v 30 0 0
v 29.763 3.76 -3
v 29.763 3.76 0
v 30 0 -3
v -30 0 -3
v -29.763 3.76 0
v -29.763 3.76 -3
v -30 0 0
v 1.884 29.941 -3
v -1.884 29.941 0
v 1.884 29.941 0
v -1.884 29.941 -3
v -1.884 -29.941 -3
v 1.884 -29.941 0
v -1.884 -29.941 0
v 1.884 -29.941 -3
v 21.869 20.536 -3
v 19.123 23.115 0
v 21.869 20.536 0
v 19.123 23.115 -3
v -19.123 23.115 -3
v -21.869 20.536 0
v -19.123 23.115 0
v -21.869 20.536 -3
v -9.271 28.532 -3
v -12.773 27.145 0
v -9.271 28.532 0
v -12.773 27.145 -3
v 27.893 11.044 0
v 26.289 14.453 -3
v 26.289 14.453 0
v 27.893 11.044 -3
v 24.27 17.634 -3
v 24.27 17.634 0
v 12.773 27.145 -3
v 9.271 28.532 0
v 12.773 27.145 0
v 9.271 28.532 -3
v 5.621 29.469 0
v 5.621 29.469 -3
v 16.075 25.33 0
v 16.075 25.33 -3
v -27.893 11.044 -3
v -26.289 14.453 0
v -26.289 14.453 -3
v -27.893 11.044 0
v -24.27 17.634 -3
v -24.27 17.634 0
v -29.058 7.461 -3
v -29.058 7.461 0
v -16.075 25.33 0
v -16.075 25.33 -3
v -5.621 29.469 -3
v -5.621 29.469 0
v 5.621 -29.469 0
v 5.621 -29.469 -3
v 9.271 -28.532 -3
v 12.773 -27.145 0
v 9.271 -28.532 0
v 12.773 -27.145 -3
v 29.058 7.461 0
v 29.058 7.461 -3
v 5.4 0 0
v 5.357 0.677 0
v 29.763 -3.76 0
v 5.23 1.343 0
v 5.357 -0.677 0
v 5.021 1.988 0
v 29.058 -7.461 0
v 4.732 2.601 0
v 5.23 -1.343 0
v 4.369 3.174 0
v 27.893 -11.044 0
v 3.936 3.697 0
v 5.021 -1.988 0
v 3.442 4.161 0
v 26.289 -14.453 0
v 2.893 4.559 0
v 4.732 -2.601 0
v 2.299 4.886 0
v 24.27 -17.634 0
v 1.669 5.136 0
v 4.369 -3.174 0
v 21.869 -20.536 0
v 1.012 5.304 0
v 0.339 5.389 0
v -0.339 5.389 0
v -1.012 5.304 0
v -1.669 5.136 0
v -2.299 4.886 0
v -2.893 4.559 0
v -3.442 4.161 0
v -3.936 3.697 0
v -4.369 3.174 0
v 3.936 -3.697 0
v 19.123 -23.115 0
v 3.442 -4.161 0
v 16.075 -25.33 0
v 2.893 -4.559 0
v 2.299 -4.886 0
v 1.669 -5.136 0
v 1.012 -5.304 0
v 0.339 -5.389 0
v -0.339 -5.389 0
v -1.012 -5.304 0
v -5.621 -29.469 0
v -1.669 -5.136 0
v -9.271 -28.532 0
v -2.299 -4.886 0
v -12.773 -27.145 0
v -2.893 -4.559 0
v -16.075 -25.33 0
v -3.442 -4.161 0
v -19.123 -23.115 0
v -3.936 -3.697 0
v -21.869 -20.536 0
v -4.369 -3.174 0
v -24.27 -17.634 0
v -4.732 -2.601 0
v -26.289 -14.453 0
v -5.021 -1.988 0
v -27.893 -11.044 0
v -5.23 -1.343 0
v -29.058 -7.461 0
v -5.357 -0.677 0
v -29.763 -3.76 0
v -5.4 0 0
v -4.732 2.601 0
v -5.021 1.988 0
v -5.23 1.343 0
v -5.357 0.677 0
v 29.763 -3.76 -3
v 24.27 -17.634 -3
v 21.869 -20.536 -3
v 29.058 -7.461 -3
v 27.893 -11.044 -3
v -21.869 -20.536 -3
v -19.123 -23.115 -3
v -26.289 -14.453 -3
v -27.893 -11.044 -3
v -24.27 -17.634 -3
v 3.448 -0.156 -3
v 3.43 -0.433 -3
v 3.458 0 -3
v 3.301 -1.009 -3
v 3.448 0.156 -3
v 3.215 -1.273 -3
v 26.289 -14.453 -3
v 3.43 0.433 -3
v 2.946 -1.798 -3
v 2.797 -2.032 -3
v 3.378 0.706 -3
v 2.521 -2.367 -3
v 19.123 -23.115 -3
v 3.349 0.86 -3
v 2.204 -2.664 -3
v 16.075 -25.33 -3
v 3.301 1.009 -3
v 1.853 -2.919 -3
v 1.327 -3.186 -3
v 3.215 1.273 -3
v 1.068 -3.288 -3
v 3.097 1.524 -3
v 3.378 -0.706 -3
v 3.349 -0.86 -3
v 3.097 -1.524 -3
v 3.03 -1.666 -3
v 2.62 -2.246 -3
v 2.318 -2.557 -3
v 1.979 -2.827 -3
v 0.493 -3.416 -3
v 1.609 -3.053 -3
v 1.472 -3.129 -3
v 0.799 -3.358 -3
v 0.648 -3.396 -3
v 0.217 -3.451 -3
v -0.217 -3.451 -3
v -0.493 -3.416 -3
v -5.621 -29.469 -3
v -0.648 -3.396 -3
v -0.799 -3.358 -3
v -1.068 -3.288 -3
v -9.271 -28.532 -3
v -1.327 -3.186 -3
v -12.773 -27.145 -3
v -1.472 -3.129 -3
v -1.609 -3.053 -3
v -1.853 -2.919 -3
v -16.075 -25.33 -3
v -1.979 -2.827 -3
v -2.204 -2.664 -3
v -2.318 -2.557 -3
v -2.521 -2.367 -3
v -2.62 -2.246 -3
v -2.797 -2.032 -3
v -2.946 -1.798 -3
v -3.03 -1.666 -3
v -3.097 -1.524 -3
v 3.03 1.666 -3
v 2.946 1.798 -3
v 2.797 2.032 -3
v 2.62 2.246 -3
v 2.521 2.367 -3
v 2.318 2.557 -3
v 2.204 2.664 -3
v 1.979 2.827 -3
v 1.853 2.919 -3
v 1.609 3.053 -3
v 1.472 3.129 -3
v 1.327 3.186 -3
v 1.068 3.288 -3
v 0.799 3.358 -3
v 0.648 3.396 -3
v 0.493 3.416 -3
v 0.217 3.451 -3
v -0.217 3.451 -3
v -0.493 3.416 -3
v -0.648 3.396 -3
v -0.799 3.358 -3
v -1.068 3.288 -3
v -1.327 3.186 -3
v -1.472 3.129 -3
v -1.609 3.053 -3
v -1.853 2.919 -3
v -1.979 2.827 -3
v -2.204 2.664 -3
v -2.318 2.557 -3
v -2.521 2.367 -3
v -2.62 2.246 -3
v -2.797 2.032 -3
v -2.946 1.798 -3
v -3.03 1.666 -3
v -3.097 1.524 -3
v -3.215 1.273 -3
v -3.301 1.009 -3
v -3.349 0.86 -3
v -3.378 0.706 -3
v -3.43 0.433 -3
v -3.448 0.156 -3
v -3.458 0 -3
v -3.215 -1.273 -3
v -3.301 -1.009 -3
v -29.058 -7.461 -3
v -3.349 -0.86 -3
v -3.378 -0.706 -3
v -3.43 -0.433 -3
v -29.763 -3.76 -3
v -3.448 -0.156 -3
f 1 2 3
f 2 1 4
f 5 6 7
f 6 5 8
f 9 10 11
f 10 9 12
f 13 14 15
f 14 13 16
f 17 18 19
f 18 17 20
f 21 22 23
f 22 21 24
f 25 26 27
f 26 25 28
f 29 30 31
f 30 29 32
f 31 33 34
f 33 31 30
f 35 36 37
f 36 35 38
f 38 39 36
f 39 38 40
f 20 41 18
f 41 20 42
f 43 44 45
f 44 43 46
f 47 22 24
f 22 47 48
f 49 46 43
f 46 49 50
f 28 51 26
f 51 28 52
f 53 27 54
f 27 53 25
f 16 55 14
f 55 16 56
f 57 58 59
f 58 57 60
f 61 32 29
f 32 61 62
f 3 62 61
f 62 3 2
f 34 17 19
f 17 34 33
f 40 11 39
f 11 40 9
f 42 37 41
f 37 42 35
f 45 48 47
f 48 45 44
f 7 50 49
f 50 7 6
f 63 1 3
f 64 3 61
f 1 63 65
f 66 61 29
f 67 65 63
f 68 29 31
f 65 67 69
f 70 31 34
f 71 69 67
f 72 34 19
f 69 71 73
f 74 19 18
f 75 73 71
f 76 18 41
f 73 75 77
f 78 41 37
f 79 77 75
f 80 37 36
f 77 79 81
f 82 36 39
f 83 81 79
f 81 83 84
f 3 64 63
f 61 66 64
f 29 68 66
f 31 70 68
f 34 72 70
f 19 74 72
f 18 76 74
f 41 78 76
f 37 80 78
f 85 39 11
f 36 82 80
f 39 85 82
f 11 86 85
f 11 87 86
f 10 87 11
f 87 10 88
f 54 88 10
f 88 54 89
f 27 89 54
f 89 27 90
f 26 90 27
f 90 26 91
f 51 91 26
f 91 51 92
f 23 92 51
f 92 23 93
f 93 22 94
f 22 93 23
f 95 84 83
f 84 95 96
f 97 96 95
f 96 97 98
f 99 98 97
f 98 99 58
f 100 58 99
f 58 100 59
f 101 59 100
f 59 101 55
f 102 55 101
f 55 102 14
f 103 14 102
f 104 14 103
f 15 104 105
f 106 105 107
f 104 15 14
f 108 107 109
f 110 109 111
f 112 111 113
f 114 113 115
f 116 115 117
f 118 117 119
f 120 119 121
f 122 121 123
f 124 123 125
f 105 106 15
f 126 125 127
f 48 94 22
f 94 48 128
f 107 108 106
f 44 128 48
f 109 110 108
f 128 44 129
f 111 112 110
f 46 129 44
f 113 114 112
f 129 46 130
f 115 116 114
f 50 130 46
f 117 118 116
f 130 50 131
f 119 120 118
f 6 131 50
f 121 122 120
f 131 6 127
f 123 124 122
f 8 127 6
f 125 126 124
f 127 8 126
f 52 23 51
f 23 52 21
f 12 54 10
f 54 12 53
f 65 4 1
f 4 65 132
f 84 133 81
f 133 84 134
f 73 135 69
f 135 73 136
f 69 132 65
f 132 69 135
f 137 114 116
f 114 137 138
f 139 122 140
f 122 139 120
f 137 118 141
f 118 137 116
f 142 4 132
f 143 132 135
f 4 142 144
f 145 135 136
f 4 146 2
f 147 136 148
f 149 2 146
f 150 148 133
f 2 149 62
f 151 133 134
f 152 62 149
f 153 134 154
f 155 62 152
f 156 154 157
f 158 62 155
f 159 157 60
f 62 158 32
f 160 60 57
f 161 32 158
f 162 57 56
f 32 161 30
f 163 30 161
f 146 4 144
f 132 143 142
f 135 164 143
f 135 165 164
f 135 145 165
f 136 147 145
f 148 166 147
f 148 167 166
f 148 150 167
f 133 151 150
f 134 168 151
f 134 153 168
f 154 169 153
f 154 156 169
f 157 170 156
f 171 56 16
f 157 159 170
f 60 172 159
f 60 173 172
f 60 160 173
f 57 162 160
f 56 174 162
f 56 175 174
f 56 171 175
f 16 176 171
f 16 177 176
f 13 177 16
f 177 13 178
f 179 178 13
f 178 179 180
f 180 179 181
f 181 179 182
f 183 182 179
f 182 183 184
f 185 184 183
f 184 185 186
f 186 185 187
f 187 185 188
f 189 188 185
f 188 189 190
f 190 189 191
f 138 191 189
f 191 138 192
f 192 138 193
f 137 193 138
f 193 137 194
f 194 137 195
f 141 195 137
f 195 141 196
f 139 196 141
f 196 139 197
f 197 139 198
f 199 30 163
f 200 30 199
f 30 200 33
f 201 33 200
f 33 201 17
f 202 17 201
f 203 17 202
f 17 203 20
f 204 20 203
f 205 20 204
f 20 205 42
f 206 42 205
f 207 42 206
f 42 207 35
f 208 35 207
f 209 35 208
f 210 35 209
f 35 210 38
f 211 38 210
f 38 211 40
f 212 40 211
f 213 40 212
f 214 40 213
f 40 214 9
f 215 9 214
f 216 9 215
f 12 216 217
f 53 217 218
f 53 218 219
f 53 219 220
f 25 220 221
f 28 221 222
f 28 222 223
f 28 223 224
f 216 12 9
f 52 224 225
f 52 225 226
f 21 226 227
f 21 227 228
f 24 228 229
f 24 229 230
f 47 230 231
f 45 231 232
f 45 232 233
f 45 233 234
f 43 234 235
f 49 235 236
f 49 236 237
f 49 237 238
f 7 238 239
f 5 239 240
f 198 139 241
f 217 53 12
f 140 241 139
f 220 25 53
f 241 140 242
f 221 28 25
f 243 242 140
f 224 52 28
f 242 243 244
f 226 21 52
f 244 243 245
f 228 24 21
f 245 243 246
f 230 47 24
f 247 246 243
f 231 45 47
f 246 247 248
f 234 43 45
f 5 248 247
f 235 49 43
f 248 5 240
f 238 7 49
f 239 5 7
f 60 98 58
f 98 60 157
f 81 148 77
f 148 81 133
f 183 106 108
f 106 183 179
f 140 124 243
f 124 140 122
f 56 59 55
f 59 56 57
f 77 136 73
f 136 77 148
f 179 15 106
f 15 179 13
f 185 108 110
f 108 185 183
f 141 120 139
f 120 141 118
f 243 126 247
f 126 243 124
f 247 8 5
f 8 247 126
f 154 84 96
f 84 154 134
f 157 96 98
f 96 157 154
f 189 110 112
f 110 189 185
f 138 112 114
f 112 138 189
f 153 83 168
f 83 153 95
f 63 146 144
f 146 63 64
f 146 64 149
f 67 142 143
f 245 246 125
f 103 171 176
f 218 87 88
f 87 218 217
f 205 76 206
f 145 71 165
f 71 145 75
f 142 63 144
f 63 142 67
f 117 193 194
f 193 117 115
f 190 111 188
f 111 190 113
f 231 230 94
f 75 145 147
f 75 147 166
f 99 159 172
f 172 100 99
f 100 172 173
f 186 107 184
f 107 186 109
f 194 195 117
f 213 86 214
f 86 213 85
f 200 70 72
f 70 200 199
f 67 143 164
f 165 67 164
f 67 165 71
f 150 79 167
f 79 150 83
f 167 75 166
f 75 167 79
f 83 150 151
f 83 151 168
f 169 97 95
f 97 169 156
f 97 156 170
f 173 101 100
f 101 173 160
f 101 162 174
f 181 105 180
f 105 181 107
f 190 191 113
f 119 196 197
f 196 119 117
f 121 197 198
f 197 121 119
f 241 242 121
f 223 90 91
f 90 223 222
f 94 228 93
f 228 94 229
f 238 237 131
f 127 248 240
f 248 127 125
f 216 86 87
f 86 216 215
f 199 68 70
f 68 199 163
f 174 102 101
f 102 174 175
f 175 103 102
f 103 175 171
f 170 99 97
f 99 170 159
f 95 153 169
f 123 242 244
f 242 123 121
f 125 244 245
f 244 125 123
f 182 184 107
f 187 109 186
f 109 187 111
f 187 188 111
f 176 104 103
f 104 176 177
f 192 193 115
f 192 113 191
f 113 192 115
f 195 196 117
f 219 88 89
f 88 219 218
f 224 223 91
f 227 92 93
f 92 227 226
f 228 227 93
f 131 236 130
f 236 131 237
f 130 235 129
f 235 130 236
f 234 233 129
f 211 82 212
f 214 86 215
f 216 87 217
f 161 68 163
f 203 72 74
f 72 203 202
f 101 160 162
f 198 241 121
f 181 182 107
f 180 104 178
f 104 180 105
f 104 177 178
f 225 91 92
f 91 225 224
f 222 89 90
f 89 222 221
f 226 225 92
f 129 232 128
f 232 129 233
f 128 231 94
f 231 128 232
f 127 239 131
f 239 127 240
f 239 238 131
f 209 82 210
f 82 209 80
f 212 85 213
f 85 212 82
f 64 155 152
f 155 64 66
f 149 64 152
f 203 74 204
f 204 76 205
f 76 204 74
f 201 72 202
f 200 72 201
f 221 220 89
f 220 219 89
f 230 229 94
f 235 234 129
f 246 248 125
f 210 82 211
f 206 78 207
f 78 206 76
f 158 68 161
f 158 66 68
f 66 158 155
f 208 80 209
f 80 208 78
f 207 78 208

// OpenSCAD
$fn = 50;


difference() {
	union() {
		translate(v = [0, 0, -3.0000000000]) {
			cylinder(h = 3, r = 30.0000000000);
		}
		translate(v = [0, 0, -6.0000000000]) {
			cylinder(h = 6, r = 2.8750000000);
		}
	}
	union() {
		translate(v = [0, 0, 0]) {
			rotate(a = [0, 0, 0]) {
				difference() {
					union() {
						translate(v = [0, 0, -6.0000000000]) {
							cylinder(h = 6, r = 2.6000000000);
						}
						translate(v = [0, 0, -3.9000000000]) {
							cylinder(h = 3.9000000000, r1 = 2.8750000000, r2 = 5.4000000000);
						}
						translate(v = [0, 0, -6.0000000000]) {
							cylinder(h = 6, r = 2.8750000000);
						}
						translate(v = [0, 0, -6.0000000000]) {
							cylinder(h = 6, r = 2.6000000000);
						}
					}
					union();
				}
			}
		}
	}
}
